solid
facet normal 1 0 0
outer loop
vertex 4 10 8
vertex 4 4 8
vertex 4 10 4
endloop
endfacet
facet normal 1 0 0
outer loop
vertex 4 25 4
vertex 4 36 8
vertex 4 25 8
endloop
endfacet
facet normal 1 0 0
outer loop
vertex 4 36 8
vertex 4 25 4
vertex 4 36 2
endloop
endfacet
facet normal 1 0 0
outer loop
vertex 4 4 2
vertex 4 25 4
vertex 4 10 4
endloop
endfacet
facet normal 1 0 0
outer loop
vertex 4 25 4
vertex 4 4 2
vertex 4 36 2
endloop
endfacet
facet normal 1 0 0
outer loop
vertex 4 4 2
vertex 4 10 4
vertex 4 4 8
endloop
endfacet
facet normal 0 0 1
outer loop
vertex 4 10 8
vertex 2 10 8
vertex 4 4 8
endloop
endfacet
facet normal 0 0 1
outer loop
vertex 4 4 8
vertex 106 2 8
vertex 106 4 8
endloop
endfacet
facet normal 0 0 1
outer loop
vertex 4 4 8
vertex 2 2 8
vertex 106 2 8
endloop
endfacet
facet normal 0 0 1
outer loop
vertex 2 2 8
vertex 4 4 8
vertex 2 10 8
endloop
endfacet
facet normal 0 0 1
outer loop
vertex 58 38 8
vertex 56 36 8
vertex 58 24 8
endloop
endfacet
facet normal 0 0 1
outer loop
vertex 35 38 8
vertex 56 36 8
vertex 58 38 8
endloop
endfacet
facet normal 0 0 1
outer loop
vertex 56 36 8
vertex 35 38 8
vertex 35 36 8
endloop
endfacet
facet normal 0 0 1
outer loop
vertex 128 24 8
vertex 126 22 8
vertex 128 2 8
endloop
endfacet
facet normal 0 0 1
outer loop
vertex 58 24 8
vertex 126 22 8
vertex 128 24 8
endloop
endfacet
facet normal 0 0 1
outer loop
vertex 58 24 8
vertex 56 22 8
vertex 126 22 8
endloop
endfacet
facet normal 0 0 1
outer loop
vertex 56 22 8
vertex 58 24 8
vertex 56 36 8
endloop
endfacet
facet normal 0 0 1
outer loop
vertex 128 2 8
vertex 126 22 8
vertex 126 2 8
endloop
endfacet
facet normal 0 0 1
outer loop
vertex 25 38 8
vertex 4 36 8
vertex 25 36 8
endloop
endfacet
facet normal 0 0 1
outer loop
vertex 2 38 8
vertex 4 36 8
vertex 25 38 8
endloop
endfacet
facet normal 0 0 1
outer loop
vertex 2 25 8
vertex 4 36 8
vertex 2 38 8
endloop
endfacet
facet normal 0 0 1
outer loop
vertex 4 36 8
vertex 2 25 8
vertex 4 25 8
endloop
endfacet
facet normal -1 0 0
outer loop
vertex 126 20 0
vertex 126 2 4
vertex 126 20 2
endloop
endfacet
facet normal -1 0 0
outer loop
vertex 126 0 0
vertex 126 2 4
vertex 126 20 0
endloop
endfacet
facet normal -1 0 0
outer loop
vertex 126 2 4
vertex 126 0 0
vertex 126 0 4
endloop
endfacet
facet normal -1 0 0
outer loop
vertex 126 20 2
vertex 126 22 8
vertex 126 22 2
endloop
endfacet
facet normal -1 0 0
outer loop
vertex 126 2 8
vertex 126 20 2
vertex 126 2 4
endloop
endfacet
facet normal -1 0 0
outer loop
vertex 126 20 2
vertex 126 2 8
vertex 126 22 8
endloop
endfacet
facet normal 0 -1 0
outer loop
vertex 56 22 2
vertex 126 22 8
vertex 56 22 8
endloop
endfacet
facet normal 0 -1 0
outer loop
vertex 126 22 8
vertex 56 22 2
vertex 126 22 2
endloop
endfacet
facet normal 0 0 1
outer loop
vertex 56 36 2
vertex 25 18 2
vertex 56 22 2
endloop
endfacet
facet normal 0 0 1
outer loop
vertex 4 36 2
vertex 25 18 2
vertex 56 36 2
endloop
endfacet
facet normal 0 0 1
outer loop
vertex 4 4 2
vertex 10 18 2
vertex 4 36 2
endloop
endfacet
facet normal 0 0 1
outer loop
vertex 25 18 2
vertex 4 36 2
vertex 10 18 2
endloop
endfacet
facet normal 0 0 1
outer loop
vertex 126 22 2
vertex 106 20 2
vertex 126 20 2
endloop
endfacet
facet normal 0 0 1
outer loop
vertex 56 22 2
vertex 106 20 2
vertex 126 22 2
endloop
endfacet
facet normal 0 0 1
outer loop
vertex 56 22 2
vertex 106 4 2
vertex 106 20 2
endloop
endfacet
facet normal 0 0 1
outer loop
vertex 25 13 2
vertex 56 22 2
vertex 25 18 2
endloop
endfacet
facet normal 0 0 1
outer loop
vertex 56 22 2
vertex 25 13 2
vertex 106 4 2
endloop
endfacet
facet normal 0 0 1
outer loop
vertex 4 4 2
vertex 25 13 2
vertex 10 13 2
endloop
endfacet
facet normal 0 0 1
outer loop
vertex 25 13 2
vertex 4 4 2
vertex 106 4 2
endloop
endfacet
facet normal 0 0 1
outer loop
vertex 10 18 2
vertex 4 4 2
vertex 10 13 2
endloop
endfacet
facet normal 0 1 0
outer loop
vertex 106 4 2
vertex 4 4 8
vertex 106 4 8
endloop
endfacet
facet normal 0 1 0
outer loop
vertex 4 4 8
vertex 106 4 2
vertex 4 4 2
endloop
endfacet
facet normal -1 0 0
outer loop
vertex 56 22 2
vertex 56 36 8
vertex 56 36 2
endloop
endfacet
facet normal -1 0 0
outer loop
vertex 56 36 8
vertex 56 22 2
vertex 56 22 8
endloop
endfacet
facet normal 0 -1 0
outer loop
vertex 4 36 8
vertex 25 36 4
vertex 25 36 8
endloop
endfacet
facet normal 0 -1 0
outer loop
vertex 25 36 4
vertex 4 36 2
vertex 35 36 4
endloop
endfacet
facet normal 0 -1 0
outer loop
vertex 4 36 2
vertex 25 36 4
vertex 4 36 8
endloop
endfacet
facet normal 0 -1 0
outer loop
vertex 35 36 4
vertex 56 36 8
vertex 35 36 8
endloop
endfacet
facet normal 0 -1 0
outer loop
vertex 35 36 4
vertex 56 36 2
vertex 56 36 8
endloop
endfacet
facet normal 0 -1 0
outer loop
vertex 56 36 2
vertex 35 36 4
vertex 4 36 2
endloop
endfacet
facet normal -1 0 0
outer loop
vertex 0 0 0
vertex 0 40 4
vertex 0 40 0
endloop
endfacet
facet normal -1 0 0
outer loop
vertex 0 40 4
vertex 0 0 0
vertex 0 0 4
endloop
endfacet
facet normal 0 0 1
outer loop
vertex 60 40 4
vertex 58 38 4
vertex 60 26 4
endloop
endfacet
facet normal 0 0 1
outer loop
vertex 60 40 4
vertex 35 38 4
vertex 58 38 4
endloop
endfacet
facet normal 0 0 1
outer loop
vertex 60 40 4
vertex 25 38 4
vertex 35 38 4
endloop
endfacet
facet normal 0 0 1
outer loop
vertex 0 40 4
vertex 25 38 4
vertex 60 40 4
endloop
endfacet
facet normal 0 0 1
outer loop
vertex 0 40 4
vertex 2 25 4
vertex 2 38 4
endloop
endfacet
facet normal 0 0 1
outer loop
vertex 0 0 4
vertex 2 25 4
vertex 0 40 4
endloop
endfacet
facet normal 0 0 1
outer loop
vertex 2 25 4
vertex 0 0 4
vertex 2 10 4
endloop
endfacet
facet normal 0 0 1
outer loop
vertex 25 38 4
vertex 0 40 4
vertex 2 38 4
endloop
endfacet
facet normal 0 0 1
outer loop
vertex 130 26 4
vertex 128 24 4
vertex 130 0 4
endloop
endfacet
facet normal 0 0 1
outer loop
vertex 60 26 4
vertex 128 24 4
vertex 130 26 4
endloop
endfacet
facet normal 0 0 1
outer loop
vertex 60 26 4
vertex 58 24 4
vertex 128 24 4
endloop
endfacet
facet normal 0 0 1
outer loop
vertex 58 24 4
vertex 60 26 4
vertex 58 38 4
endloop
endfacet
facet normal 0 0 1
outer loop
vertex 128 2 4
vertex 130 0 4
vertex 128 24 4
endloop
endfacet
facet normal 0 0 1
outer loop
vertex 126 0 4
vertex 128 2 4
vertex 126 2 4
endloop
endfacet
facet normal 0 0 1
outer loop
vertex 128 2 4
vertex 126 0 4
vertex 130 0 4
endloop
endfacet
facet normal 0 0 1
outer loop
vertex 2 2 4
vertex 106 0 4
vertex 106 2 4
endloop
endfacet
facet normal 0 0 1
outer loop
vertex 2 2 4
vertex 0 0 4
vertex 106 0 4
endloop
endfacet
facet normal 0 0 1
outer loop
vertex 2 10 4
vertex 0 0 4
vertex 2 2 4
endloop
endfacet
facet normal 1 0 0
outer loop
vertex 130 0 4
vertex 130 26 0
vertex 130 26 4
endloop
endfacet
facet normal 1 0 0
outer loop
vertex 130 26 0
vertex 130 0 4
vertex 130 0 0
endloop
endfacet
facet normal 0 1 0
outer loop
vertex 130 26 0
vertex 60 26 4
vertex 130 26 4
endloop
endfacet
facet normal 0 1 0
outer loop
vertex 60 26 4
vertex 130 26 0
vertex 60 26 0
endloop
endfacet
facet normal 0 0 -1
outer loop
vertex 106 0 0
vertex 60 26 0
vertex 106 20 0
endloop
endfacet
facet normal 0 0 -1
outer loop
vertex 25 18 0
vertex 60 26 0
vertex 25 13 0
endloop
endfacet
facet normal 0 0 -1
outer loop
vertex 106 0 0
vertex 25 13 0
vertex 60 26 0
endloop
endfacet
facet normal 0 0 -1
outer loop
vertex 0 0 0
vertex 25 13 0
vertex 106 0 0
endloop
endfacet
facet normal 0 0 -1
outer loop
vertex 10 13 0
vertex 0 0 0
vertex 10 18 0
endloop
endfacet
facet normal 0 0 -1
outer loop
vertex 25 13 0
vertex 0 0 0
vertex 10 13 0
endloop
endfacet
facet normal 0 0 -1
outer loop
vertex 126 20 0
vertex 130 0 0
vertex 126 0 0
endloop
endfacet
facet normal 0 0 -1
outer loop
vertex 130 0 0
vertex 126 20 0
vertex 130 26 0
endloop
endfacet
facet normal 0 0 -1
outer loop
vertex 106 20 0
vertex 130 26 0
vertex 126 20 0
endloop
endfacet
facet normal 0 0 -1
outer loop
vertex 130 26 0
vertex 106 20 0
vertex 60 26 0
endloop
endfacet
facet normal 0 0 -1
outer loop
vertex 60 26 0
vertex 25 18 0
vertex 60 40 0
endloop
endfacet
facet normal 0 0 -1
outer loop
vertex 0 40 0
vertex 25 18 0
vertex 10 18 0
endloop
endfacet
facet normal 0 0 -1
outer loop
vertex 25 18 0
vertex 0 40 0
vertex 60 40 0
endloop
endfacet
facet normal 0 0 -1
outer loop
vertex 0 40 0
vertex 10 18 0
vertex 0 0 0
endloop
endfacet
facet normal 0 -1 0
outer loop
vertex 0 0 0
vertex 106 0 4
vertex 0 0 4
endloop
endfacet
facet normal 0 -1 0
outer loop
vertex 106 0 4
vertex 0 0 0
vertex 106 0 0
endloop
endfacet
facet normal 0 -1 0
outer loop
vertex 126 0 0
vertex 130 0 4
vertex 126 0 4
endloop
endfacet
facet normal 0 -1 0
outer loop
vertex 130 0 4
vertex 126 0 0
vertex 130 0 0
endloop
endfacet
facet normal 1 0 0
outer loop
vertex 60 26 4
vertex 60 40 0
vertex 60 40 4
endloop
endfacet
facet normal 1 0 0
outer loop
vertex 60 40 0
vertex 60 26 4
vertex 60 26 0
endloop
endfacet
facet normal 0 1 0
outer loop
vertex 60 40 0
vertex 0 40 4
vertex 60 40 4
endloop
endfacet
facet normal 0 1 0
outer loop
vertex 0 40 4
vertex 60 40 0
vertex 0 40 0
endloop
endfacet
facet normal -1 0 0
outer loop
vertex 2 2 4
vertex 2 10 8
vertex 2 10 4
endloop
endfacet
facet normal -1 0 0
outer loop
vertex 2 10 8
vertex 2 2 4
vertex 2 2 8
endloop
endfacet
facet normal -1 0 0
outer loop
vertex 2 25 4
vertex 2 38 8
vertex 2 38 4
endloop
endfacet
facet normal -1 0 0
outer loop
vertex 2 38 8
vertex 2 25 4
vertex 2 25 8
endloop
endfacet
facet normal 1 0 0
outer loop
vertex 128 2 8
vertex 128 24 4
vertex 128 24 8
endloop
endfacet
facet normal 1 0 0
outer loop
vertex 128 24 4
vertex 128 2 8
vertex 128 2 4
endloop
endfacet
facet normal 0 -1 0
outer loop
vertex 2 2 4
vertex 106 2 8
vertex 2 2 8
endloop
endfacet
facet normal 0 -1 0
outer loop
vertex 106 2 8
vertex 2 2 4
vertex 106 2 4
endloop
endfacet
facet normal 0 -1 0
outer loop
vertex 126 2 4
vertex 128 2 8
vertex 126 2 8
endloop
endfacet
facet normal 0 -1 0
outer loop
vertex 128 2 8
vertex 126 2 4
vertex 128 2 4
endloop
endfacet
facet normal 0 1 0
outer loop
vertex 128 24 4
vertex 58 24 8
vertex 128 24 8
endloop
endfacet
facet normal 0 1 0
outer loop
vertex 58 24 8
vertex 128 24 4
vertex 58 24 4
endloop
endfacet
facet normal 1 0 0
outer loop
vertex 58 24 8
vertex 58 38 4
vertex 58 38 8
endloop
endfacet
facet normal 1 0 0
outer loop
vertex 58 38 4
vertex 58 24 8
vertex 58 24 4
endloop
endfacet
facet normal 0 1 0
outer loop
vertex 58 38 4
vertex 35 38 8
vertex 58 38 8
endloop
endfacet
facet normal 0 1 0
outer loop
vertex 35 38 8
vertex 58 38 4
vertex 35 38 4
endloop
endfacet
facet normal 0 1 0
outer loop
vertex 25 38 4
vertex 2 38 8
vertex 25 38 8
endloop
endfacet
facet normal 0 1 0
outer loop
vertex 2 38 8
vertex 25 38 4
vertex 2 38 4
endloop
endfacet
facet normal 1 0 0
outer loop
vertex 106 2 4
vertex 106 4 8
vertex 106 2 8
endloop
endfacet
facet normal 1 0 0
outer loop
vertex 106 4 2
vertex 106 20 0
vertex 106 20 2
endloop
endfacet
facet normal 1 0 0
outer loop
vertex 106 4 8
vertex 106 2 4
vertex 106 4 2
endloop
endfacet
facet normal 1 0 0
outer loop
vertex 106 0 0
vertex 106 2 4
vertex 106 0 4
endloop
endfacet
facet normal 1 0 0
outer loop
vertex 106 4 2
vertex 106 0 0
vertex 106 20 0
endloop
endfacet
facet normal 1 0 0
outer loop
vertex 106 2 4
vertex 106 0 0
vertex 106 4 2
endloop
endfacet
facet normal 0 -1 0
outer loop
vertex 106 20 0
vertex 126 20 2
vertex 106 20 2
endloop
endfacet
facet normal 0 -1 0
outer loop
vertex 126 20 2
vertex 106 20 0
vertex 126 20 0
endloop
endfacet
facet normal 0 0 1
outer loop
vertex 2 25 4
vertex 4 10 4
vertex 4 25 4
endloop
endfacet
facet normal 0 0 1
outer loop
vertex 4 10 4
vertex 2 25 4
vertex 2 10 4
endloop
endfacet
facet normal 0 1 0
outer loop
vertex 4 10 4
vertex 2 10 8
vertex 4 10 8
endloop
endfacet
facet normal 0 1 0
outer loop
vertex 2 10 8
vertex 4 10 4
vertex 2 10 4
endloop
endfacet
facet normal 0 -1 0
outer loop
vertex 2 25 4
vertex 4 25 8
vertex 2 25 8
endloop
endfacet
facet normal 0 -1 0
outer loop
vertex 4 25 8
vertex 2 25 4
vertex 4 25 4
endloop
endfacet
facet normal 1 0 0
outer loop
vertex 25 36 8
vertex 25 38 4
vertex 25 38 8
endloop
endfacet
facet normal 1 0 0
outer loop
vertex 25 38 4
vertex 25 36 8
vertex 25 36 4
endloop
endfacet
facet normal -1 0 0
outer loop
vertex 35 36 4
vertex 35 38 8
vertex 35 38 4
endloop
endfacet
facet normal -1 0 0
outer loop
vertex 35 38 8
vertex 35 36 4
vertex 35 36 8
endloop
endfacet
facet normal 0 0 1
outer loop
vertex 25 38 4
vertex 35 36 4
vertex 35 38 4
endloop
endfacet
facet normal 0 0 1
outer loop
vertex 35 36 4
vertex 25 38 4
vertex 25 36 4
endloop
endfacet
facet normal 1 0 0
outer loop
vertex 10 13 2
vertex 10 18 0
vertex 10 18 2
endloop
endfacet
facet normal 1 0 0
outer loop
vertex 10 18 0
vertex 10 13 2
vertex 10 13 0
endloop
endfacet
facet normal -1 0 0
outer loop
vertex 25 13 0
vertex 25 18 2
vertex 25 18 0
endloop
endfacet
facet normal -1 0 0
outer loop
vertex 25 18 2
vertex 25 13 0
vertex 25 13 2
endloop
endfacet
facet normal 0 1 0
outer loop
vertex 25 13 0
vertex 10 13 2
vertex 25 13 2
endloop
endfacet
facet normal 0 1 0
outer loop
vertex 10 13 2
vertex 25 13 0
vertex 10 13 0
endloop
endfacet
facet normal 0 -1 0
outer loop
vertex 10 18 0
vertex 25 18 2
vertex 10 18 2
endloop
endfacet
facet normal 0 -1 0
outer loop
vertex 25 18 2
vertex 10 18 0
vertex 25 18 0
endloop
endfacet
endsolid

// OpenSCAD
difference(){
        union(){
            cube([130,26,4]);
            cube([60,40,4]);
            translate([2,2,0]){
                cube([126,22,8]);
            }
            translate([2,2,0]){
               cube([56,36,8]); 
            }        
        }
        union(){
            translate([4,4,2]){
                cube([122,18,6]);
            }
            translate([4,4,2]){
                 cube([52,32,6]);
            }
        }
        translate([106,0,0]){
            cube([20,20,8]);
        }
        translate([2,10,4]){
            cube([2,15,4]);
        }
        translate([25,36,4]){
            cube([10,2,4]);
        }
        translate([10,13,0]){
            cube([15,5,2]);
        }
}
